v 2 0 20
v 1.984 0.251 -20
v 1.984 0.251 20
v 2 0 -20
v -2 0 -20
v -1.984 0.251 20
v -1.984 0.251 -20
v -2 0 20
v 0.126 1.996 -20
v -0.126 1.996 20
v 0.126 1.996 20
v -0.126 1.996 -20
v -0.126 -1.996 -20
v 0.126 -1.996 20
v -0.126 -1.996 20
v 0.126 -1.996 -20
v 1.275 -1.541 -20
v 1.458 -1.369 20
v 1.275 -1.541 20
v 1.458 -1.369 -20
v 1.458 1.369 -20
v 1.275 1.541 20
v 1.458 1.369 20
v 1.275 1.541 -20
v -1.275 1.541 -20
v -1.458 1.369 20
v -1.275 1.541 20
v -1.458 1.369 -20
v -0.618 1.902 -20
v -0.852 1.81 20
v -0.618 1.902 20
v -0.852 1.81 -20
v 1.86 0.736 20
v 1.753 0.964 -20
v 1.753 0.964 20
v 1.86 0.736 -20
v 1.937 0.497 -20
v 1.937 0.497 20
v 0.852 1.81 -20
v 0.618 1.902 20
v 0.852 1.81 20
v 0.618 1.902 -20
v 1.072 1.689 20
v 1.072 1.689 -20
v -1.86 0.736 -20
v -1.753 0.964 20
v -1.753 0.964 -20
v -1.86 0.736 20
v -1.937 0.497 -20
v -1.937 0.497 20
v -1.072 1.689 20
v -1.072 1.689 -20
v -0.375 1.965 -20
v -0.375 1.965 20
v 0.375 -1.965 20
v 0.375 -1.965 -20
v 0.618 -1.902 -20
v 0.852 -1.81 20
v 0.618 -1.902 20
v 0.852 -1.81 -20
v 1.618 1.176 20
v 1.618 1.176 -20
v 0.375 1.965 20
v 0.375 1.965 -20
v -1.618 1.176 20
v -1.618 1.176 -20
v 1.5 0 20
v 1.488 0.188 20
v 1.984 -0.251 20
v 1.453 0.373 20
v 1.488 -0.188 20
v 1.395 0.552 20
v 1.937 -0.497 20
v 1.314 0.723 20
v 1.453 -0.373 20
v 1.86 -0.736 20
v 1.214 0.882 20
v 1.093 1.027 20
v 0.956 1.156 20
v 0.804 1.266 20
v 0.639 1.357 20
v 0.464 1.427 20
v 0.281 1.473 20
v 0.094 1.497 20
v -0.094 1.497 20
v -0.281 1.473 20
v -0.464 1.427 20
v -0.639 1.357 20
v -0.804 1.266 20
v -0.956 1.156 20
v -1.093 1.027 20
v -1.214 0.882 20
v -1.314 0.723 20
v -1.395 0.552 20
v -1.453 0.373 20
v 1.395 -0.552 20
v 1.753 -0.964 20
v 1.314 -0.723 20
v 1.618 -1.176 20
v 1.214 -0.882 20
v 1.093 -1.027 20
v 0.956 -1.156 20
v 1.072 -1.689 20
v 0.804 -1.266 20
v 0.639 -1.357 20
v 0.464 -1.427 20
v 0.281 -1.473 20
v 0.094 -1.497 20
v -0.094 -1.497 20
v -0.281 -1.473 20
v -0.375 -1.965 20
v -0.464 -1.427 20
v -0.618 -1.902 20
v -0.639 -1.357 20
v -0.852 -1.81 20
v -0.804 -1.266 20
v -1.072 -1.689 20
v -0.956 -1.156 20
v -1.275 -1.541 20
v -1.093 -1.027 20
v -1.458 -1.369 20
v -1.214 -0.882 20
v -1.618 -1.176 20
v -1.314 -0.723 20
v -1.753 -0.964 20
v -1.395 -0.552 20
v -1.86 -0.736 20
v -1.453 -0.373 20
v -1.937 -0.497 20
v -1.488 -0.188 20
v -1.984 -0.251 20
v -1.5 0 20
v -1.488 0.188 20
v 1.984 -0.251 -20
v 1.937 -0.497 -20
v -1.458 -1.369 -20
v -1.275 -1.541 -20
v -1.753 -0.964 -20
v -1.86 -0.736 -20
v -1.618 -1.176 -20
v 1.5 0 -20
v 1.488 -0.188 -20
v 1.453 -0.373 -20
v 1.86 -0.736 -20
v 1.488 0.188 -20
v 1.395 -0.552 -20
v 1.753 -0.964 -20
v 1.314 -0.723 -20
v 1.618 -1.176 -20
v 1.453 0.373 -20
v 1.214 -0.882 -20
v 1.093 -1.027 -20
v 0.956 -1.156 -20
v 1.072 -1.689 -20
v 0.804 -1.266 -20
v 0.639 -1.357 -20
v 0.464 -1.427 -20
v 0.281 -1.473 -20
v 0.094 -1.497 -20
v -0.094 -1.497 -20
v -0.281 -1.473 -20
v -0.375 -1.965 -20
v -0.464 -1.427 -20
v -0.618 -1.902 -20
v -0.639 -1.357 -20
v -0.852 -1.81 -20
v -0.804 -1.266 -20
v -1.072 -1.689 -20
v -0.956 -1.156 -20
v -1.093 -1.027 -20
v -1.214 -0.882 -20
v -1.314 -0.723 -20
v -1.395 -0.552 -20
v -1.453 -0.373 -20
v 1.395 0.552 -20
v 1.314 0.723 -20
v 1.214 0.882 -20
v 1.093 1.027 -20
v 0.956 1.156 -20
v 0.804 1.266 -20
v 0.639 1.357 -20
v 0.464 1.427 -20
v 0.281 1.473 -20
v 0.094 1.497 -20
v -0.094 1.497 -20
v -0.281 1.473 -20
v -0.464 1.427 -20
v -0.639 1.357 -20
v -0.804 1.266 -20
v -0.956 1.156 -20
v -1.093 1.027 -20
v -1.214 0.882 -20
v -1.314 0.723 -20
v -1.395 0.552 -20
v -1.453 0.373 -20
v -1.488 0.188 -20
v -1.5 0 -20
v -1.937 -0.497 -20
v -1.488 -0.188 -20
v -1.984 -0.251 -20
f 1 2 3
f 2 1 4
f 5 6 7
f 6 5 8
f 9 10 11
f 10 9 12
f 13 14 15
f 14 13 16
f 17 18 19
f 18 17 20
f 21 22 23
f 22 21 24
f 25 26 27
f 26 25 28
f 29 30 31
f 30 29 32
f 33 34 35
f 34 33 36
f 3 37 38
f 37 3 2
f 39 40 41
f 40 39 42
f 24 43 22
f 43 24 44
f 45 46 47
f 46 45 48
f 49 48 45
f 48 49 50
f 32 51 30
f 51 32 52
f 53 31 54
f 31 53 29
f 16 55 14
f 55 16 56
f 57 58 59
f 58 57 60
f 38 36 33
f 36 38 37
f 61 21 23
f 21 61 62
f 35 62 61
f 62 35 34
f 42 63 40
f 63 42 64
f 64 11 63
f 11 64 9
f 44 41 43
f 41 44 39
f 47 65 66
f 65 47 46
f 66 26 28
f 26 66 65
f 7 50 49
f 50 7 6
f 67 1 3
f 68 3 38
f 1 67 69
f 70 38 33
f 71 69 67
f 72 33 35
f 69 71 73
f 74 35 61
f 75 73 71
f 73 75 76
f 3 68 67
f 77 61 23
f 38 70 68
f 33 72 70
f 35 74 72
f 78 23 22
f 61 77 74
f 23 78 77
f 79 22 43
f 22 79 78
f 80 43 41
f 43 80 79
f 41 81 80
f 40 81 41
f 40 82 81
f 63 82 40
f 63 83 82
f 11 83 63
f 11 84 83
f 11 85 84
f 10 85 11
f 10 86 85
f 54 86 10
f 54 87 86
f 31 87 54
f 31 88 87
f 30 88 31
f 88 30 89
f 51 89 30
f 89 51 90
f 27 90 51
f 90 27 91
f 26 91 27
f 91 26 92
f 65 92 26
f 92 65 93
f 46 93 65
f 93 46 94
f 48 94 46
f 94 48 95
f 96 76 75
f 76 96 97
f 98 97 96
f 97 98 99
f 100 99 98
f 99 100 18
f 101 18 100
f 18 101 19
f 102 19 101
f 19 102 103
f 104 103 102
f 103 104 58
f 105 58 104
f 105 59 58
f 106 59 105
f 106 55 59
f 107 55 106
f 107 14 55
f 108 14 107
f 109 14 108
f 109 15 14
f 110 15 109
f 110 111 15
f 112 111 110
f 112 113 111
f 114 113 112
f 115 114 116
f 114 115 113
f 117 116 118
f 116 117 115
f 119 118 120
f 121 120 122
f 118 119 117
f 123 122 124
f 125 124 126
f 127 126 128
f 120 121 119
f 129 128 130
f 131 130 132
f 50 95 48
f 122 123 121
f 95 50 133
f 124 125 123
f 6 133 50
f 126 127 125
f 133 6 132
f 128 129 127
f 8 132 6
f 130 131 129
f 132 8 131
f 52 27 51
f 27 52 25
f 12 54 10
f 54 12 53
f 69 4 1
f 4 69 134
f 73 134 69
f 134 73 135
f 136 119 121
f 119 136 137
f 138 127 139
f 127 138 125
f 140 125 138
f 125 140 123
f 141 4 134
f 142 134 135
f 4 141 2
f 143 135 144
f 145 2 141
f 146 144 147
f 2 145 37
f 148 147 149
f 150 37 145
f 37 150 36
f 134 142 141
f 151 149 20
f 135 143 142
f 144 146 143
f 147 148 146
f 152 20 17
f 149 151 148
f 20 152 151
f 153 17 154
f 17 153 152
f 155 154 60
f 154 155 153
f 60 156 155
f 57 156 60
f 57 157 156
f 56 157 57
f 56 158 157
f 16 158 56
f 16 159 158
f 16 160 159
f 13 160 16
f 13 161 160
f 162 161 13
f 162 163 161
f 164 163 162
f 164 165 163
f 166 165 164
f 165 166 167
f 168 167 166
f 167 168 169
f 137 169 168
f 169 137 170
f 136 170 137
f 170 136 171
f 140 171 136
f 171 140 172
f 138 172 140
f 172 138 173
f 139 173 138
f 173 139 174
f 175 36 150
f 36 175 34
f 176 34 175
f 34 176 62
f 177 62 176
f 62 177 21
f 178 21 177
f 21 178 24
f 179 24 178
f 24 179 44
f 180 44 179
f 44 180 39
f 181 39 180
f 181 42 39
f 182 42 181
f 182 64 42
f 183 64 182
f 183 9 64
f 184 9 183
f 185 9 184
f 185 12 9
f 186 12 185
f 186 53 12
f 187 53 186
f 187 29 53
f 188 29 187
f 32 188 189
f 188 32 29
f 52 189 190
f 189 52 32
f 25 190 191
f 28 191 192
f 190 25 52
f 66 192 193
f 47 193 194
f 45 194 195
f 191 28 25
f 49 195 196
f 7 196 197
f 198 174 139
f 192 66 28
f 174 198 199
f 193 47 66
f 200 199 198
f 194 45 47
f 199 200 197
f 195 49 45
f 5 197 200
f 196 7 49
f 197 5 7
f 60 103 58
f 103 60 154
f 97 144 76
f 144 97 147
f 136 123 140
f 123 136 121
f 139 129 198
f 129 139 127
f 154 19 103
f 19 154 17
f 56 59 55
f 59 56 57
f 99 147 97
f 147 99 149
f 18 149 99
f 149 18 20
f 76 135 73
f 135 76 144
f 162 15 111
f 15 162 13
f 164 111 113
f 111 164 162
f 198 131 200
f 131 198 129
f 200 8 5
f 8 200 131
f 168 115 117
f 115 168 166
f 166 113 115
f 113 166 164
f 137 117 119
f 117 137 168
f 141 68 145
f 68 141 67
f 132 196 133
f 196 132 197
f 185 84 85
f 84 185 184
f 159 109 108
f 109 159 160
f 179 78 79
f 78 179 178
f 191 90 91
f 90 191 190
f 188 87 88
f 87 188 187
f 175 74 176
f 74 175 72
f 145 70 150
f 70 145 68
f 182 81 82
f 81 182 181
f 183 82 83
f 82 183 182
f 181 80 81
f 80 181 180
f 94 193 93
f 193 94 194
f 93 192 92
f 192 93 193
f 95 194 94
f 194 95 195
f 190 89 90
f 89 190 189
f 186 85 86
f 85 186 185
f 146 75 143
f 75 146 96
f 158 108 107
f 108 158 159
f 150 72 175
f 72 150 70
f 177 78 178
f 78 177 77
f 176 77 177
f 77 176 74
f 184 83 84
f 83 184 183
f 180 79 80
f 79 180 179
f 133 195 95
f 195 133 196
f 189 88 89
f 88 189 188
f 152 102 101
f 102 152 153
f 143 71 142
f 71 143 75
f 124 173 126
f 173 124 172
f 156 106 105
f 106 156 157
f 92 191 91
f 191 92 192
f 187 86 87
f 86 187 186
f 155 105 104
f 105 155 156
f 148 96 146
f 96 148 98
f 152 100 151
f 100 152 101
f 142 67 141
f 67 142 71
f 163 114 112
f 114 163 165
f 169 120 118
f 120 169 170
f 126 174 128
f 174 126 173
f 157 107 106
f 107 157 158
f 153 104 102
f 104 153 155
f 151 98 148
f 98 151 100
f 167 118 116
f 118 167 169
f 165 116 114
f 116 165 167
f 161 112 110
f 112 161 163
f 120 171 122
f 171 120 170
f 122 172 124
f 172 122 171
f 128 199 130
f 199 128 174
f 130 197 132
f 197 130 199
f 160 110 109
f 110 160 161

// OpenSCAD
$fn = 50;


difference() {
	union() {
		translate(v = [0, 0, -20.0000000000]) {
			cylinder(h = 40, r = 2.0000000000);
		}
	}
	union() {
		translate(v = [0, 0, -100.0000000000]) {
			cylinder(h = 200, r = 1.5000000000);
		}
	}
}
